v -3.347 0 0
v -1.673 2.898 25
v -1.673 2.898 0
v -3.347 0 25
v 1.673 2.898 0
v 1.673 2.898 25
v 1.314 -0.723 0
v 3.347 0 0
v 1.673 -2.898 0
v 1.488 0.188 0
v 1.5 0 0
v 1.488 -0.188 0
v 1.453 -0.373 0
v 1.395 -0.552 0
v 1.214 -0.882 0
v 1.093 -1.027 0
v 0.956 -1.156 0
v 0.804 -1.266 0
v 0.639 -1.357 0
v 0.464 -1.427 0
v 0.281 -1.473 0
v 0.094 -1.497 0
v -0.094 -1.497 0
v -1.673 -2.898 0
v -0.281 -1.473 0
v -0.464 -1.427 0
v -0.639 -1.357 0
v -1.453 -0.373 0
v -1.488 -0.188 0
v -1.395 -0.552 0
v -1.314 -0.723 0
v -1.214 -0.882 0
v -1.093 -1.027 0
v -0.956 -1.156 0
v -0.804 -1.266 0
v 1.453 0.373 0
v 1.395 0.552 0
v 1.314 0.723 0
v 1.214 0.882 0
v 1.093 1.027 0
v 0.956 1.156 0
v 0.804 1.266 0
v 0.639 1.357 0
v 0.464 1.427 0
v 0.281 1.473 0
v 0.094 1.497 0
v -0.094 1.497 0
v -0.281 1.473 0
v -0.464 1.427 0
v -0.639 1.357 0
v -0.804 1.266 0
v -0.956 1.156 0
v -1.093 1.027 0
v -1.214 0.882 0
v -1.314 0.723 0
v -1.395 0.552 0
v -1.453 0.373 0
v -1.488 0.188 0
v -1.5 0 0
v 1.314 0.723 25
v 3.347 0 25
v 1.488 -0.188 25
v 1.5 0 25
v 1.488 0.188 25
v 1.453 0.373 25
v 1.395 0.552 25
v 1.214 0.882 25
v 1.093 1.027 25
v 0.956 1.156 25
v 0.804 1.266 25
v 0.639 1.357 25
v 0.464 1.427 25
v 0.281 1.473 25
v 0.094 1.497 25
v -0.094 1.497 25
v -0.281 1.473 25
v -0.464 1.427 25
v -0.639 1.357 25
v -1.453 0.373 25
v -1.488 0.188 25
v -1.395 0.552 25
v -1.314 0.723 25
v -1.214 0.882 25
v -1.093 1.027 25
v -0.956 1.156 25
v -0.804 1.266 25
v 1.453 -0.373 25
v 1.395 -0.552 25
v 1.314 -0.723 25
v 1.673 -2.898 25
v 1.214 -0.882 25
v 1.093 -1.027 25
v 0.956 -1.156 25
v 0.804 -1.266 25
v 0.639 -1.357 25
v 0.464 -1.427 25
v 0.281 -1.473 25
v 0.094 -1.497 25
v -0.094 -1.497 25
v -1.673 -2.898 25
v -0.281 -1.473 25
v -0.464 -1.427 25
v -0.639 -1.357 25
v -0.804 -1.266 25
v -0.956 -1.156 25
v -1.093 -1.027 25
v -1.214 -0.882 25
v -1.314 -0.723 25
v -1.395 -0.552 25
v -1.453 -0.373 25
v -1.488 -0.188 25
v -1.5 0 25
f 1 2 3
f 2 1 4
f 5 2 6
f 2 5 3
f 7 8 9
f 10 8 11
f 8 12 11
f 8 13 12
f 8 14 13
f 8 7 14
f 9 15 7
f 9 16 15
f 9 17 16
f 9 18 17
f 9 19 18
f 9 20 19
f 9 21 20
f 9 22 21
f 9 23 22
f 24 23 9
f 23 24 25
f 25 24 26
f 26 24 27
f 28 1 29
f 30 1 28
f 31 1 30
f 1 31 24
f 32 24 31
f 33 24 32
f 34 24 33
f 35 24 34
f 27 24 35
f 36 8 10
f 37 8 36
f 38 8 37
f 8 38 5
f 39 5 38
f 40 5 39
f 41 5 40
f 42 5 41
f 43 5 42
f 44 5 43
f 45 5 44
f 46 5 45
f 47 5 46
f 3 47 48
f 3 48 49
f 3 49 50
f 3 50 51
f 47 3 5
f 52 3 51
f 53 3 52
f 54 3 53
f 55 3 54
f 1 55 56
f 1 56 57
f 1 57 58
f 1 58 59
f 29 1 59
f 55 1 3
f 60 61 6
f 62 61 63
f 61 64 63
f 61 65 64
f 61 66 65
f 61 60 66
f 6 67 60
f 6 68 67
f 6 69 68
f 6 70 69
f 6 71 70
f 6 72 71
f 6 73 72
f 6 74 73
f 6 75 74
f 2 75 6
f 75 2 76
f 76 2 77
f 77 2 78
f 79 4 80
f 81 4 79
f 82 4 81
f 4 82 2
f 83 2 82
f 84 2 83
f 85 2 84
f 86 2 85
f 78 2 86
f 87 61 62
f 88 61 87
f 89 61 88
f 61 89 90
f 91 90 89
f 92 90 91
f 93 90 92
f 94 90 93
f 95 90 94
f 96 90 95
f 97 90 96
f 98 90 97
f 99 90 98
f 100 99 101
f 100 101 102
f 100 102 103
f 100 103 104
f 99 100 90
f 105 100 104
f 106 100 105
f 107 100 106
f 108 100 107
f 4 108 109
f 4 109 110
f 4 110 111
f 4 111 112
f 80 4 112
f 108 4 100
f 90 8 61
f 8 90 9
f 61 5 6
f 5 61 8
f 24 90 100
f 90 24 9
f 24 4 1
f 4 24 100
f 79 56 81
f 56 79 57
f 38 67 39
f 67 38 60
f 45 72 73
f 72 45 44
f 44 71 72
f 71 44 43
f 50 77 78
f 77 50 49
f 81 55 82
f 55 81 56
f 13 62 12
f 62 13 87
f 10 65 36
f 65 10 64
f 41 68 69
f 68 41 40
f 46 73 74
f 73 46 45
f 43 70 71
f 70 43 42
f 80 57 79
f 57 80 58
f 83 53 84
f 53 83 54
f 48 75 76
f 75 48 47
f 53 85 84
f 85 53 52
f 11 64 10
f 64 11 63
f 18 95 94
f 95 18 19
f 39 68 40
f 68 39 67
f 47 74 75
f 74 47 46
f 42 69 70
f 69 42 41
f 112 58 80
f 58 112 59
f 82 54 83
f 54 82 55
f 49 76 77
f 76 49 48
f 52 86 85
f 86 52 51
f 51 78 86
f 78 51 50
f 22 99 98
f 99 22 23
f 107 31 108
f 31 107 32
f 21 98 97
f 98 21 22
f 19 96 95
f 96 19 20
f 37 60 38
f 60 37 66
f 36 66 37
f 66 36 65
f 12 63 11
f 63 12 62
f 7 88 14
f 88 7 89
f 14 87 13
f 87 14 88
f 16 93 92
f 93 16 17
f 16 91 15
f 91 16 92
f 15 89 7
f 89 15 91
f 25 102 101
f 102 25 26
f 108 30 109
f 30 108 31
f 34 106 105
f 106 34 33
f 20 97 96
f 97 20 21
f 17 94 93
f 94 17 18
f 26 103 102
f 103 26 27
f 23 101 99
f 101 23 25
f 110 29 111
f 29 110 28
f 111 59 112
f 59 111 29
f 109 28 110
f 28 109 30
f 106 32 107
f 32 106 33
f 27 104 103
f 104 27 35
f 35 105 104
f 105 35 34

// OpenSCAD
$fn = 50;


difference() {
	union() {
		linear_extrude(height = 25) {
			polygon(points = [[3.3466000000, 0.0000000000], [1.6733000000, 2.8982406163], [-1.6733000000, 2.8982406163], [-3.3466000000, 0.0000000000], [-1.6733000000, -2.8982406163], [1.6733000000, -2.8982406163]]);
		}
	}
	union() {
		cylinder(h = 25, r = 1.5000000000);
	}
}
